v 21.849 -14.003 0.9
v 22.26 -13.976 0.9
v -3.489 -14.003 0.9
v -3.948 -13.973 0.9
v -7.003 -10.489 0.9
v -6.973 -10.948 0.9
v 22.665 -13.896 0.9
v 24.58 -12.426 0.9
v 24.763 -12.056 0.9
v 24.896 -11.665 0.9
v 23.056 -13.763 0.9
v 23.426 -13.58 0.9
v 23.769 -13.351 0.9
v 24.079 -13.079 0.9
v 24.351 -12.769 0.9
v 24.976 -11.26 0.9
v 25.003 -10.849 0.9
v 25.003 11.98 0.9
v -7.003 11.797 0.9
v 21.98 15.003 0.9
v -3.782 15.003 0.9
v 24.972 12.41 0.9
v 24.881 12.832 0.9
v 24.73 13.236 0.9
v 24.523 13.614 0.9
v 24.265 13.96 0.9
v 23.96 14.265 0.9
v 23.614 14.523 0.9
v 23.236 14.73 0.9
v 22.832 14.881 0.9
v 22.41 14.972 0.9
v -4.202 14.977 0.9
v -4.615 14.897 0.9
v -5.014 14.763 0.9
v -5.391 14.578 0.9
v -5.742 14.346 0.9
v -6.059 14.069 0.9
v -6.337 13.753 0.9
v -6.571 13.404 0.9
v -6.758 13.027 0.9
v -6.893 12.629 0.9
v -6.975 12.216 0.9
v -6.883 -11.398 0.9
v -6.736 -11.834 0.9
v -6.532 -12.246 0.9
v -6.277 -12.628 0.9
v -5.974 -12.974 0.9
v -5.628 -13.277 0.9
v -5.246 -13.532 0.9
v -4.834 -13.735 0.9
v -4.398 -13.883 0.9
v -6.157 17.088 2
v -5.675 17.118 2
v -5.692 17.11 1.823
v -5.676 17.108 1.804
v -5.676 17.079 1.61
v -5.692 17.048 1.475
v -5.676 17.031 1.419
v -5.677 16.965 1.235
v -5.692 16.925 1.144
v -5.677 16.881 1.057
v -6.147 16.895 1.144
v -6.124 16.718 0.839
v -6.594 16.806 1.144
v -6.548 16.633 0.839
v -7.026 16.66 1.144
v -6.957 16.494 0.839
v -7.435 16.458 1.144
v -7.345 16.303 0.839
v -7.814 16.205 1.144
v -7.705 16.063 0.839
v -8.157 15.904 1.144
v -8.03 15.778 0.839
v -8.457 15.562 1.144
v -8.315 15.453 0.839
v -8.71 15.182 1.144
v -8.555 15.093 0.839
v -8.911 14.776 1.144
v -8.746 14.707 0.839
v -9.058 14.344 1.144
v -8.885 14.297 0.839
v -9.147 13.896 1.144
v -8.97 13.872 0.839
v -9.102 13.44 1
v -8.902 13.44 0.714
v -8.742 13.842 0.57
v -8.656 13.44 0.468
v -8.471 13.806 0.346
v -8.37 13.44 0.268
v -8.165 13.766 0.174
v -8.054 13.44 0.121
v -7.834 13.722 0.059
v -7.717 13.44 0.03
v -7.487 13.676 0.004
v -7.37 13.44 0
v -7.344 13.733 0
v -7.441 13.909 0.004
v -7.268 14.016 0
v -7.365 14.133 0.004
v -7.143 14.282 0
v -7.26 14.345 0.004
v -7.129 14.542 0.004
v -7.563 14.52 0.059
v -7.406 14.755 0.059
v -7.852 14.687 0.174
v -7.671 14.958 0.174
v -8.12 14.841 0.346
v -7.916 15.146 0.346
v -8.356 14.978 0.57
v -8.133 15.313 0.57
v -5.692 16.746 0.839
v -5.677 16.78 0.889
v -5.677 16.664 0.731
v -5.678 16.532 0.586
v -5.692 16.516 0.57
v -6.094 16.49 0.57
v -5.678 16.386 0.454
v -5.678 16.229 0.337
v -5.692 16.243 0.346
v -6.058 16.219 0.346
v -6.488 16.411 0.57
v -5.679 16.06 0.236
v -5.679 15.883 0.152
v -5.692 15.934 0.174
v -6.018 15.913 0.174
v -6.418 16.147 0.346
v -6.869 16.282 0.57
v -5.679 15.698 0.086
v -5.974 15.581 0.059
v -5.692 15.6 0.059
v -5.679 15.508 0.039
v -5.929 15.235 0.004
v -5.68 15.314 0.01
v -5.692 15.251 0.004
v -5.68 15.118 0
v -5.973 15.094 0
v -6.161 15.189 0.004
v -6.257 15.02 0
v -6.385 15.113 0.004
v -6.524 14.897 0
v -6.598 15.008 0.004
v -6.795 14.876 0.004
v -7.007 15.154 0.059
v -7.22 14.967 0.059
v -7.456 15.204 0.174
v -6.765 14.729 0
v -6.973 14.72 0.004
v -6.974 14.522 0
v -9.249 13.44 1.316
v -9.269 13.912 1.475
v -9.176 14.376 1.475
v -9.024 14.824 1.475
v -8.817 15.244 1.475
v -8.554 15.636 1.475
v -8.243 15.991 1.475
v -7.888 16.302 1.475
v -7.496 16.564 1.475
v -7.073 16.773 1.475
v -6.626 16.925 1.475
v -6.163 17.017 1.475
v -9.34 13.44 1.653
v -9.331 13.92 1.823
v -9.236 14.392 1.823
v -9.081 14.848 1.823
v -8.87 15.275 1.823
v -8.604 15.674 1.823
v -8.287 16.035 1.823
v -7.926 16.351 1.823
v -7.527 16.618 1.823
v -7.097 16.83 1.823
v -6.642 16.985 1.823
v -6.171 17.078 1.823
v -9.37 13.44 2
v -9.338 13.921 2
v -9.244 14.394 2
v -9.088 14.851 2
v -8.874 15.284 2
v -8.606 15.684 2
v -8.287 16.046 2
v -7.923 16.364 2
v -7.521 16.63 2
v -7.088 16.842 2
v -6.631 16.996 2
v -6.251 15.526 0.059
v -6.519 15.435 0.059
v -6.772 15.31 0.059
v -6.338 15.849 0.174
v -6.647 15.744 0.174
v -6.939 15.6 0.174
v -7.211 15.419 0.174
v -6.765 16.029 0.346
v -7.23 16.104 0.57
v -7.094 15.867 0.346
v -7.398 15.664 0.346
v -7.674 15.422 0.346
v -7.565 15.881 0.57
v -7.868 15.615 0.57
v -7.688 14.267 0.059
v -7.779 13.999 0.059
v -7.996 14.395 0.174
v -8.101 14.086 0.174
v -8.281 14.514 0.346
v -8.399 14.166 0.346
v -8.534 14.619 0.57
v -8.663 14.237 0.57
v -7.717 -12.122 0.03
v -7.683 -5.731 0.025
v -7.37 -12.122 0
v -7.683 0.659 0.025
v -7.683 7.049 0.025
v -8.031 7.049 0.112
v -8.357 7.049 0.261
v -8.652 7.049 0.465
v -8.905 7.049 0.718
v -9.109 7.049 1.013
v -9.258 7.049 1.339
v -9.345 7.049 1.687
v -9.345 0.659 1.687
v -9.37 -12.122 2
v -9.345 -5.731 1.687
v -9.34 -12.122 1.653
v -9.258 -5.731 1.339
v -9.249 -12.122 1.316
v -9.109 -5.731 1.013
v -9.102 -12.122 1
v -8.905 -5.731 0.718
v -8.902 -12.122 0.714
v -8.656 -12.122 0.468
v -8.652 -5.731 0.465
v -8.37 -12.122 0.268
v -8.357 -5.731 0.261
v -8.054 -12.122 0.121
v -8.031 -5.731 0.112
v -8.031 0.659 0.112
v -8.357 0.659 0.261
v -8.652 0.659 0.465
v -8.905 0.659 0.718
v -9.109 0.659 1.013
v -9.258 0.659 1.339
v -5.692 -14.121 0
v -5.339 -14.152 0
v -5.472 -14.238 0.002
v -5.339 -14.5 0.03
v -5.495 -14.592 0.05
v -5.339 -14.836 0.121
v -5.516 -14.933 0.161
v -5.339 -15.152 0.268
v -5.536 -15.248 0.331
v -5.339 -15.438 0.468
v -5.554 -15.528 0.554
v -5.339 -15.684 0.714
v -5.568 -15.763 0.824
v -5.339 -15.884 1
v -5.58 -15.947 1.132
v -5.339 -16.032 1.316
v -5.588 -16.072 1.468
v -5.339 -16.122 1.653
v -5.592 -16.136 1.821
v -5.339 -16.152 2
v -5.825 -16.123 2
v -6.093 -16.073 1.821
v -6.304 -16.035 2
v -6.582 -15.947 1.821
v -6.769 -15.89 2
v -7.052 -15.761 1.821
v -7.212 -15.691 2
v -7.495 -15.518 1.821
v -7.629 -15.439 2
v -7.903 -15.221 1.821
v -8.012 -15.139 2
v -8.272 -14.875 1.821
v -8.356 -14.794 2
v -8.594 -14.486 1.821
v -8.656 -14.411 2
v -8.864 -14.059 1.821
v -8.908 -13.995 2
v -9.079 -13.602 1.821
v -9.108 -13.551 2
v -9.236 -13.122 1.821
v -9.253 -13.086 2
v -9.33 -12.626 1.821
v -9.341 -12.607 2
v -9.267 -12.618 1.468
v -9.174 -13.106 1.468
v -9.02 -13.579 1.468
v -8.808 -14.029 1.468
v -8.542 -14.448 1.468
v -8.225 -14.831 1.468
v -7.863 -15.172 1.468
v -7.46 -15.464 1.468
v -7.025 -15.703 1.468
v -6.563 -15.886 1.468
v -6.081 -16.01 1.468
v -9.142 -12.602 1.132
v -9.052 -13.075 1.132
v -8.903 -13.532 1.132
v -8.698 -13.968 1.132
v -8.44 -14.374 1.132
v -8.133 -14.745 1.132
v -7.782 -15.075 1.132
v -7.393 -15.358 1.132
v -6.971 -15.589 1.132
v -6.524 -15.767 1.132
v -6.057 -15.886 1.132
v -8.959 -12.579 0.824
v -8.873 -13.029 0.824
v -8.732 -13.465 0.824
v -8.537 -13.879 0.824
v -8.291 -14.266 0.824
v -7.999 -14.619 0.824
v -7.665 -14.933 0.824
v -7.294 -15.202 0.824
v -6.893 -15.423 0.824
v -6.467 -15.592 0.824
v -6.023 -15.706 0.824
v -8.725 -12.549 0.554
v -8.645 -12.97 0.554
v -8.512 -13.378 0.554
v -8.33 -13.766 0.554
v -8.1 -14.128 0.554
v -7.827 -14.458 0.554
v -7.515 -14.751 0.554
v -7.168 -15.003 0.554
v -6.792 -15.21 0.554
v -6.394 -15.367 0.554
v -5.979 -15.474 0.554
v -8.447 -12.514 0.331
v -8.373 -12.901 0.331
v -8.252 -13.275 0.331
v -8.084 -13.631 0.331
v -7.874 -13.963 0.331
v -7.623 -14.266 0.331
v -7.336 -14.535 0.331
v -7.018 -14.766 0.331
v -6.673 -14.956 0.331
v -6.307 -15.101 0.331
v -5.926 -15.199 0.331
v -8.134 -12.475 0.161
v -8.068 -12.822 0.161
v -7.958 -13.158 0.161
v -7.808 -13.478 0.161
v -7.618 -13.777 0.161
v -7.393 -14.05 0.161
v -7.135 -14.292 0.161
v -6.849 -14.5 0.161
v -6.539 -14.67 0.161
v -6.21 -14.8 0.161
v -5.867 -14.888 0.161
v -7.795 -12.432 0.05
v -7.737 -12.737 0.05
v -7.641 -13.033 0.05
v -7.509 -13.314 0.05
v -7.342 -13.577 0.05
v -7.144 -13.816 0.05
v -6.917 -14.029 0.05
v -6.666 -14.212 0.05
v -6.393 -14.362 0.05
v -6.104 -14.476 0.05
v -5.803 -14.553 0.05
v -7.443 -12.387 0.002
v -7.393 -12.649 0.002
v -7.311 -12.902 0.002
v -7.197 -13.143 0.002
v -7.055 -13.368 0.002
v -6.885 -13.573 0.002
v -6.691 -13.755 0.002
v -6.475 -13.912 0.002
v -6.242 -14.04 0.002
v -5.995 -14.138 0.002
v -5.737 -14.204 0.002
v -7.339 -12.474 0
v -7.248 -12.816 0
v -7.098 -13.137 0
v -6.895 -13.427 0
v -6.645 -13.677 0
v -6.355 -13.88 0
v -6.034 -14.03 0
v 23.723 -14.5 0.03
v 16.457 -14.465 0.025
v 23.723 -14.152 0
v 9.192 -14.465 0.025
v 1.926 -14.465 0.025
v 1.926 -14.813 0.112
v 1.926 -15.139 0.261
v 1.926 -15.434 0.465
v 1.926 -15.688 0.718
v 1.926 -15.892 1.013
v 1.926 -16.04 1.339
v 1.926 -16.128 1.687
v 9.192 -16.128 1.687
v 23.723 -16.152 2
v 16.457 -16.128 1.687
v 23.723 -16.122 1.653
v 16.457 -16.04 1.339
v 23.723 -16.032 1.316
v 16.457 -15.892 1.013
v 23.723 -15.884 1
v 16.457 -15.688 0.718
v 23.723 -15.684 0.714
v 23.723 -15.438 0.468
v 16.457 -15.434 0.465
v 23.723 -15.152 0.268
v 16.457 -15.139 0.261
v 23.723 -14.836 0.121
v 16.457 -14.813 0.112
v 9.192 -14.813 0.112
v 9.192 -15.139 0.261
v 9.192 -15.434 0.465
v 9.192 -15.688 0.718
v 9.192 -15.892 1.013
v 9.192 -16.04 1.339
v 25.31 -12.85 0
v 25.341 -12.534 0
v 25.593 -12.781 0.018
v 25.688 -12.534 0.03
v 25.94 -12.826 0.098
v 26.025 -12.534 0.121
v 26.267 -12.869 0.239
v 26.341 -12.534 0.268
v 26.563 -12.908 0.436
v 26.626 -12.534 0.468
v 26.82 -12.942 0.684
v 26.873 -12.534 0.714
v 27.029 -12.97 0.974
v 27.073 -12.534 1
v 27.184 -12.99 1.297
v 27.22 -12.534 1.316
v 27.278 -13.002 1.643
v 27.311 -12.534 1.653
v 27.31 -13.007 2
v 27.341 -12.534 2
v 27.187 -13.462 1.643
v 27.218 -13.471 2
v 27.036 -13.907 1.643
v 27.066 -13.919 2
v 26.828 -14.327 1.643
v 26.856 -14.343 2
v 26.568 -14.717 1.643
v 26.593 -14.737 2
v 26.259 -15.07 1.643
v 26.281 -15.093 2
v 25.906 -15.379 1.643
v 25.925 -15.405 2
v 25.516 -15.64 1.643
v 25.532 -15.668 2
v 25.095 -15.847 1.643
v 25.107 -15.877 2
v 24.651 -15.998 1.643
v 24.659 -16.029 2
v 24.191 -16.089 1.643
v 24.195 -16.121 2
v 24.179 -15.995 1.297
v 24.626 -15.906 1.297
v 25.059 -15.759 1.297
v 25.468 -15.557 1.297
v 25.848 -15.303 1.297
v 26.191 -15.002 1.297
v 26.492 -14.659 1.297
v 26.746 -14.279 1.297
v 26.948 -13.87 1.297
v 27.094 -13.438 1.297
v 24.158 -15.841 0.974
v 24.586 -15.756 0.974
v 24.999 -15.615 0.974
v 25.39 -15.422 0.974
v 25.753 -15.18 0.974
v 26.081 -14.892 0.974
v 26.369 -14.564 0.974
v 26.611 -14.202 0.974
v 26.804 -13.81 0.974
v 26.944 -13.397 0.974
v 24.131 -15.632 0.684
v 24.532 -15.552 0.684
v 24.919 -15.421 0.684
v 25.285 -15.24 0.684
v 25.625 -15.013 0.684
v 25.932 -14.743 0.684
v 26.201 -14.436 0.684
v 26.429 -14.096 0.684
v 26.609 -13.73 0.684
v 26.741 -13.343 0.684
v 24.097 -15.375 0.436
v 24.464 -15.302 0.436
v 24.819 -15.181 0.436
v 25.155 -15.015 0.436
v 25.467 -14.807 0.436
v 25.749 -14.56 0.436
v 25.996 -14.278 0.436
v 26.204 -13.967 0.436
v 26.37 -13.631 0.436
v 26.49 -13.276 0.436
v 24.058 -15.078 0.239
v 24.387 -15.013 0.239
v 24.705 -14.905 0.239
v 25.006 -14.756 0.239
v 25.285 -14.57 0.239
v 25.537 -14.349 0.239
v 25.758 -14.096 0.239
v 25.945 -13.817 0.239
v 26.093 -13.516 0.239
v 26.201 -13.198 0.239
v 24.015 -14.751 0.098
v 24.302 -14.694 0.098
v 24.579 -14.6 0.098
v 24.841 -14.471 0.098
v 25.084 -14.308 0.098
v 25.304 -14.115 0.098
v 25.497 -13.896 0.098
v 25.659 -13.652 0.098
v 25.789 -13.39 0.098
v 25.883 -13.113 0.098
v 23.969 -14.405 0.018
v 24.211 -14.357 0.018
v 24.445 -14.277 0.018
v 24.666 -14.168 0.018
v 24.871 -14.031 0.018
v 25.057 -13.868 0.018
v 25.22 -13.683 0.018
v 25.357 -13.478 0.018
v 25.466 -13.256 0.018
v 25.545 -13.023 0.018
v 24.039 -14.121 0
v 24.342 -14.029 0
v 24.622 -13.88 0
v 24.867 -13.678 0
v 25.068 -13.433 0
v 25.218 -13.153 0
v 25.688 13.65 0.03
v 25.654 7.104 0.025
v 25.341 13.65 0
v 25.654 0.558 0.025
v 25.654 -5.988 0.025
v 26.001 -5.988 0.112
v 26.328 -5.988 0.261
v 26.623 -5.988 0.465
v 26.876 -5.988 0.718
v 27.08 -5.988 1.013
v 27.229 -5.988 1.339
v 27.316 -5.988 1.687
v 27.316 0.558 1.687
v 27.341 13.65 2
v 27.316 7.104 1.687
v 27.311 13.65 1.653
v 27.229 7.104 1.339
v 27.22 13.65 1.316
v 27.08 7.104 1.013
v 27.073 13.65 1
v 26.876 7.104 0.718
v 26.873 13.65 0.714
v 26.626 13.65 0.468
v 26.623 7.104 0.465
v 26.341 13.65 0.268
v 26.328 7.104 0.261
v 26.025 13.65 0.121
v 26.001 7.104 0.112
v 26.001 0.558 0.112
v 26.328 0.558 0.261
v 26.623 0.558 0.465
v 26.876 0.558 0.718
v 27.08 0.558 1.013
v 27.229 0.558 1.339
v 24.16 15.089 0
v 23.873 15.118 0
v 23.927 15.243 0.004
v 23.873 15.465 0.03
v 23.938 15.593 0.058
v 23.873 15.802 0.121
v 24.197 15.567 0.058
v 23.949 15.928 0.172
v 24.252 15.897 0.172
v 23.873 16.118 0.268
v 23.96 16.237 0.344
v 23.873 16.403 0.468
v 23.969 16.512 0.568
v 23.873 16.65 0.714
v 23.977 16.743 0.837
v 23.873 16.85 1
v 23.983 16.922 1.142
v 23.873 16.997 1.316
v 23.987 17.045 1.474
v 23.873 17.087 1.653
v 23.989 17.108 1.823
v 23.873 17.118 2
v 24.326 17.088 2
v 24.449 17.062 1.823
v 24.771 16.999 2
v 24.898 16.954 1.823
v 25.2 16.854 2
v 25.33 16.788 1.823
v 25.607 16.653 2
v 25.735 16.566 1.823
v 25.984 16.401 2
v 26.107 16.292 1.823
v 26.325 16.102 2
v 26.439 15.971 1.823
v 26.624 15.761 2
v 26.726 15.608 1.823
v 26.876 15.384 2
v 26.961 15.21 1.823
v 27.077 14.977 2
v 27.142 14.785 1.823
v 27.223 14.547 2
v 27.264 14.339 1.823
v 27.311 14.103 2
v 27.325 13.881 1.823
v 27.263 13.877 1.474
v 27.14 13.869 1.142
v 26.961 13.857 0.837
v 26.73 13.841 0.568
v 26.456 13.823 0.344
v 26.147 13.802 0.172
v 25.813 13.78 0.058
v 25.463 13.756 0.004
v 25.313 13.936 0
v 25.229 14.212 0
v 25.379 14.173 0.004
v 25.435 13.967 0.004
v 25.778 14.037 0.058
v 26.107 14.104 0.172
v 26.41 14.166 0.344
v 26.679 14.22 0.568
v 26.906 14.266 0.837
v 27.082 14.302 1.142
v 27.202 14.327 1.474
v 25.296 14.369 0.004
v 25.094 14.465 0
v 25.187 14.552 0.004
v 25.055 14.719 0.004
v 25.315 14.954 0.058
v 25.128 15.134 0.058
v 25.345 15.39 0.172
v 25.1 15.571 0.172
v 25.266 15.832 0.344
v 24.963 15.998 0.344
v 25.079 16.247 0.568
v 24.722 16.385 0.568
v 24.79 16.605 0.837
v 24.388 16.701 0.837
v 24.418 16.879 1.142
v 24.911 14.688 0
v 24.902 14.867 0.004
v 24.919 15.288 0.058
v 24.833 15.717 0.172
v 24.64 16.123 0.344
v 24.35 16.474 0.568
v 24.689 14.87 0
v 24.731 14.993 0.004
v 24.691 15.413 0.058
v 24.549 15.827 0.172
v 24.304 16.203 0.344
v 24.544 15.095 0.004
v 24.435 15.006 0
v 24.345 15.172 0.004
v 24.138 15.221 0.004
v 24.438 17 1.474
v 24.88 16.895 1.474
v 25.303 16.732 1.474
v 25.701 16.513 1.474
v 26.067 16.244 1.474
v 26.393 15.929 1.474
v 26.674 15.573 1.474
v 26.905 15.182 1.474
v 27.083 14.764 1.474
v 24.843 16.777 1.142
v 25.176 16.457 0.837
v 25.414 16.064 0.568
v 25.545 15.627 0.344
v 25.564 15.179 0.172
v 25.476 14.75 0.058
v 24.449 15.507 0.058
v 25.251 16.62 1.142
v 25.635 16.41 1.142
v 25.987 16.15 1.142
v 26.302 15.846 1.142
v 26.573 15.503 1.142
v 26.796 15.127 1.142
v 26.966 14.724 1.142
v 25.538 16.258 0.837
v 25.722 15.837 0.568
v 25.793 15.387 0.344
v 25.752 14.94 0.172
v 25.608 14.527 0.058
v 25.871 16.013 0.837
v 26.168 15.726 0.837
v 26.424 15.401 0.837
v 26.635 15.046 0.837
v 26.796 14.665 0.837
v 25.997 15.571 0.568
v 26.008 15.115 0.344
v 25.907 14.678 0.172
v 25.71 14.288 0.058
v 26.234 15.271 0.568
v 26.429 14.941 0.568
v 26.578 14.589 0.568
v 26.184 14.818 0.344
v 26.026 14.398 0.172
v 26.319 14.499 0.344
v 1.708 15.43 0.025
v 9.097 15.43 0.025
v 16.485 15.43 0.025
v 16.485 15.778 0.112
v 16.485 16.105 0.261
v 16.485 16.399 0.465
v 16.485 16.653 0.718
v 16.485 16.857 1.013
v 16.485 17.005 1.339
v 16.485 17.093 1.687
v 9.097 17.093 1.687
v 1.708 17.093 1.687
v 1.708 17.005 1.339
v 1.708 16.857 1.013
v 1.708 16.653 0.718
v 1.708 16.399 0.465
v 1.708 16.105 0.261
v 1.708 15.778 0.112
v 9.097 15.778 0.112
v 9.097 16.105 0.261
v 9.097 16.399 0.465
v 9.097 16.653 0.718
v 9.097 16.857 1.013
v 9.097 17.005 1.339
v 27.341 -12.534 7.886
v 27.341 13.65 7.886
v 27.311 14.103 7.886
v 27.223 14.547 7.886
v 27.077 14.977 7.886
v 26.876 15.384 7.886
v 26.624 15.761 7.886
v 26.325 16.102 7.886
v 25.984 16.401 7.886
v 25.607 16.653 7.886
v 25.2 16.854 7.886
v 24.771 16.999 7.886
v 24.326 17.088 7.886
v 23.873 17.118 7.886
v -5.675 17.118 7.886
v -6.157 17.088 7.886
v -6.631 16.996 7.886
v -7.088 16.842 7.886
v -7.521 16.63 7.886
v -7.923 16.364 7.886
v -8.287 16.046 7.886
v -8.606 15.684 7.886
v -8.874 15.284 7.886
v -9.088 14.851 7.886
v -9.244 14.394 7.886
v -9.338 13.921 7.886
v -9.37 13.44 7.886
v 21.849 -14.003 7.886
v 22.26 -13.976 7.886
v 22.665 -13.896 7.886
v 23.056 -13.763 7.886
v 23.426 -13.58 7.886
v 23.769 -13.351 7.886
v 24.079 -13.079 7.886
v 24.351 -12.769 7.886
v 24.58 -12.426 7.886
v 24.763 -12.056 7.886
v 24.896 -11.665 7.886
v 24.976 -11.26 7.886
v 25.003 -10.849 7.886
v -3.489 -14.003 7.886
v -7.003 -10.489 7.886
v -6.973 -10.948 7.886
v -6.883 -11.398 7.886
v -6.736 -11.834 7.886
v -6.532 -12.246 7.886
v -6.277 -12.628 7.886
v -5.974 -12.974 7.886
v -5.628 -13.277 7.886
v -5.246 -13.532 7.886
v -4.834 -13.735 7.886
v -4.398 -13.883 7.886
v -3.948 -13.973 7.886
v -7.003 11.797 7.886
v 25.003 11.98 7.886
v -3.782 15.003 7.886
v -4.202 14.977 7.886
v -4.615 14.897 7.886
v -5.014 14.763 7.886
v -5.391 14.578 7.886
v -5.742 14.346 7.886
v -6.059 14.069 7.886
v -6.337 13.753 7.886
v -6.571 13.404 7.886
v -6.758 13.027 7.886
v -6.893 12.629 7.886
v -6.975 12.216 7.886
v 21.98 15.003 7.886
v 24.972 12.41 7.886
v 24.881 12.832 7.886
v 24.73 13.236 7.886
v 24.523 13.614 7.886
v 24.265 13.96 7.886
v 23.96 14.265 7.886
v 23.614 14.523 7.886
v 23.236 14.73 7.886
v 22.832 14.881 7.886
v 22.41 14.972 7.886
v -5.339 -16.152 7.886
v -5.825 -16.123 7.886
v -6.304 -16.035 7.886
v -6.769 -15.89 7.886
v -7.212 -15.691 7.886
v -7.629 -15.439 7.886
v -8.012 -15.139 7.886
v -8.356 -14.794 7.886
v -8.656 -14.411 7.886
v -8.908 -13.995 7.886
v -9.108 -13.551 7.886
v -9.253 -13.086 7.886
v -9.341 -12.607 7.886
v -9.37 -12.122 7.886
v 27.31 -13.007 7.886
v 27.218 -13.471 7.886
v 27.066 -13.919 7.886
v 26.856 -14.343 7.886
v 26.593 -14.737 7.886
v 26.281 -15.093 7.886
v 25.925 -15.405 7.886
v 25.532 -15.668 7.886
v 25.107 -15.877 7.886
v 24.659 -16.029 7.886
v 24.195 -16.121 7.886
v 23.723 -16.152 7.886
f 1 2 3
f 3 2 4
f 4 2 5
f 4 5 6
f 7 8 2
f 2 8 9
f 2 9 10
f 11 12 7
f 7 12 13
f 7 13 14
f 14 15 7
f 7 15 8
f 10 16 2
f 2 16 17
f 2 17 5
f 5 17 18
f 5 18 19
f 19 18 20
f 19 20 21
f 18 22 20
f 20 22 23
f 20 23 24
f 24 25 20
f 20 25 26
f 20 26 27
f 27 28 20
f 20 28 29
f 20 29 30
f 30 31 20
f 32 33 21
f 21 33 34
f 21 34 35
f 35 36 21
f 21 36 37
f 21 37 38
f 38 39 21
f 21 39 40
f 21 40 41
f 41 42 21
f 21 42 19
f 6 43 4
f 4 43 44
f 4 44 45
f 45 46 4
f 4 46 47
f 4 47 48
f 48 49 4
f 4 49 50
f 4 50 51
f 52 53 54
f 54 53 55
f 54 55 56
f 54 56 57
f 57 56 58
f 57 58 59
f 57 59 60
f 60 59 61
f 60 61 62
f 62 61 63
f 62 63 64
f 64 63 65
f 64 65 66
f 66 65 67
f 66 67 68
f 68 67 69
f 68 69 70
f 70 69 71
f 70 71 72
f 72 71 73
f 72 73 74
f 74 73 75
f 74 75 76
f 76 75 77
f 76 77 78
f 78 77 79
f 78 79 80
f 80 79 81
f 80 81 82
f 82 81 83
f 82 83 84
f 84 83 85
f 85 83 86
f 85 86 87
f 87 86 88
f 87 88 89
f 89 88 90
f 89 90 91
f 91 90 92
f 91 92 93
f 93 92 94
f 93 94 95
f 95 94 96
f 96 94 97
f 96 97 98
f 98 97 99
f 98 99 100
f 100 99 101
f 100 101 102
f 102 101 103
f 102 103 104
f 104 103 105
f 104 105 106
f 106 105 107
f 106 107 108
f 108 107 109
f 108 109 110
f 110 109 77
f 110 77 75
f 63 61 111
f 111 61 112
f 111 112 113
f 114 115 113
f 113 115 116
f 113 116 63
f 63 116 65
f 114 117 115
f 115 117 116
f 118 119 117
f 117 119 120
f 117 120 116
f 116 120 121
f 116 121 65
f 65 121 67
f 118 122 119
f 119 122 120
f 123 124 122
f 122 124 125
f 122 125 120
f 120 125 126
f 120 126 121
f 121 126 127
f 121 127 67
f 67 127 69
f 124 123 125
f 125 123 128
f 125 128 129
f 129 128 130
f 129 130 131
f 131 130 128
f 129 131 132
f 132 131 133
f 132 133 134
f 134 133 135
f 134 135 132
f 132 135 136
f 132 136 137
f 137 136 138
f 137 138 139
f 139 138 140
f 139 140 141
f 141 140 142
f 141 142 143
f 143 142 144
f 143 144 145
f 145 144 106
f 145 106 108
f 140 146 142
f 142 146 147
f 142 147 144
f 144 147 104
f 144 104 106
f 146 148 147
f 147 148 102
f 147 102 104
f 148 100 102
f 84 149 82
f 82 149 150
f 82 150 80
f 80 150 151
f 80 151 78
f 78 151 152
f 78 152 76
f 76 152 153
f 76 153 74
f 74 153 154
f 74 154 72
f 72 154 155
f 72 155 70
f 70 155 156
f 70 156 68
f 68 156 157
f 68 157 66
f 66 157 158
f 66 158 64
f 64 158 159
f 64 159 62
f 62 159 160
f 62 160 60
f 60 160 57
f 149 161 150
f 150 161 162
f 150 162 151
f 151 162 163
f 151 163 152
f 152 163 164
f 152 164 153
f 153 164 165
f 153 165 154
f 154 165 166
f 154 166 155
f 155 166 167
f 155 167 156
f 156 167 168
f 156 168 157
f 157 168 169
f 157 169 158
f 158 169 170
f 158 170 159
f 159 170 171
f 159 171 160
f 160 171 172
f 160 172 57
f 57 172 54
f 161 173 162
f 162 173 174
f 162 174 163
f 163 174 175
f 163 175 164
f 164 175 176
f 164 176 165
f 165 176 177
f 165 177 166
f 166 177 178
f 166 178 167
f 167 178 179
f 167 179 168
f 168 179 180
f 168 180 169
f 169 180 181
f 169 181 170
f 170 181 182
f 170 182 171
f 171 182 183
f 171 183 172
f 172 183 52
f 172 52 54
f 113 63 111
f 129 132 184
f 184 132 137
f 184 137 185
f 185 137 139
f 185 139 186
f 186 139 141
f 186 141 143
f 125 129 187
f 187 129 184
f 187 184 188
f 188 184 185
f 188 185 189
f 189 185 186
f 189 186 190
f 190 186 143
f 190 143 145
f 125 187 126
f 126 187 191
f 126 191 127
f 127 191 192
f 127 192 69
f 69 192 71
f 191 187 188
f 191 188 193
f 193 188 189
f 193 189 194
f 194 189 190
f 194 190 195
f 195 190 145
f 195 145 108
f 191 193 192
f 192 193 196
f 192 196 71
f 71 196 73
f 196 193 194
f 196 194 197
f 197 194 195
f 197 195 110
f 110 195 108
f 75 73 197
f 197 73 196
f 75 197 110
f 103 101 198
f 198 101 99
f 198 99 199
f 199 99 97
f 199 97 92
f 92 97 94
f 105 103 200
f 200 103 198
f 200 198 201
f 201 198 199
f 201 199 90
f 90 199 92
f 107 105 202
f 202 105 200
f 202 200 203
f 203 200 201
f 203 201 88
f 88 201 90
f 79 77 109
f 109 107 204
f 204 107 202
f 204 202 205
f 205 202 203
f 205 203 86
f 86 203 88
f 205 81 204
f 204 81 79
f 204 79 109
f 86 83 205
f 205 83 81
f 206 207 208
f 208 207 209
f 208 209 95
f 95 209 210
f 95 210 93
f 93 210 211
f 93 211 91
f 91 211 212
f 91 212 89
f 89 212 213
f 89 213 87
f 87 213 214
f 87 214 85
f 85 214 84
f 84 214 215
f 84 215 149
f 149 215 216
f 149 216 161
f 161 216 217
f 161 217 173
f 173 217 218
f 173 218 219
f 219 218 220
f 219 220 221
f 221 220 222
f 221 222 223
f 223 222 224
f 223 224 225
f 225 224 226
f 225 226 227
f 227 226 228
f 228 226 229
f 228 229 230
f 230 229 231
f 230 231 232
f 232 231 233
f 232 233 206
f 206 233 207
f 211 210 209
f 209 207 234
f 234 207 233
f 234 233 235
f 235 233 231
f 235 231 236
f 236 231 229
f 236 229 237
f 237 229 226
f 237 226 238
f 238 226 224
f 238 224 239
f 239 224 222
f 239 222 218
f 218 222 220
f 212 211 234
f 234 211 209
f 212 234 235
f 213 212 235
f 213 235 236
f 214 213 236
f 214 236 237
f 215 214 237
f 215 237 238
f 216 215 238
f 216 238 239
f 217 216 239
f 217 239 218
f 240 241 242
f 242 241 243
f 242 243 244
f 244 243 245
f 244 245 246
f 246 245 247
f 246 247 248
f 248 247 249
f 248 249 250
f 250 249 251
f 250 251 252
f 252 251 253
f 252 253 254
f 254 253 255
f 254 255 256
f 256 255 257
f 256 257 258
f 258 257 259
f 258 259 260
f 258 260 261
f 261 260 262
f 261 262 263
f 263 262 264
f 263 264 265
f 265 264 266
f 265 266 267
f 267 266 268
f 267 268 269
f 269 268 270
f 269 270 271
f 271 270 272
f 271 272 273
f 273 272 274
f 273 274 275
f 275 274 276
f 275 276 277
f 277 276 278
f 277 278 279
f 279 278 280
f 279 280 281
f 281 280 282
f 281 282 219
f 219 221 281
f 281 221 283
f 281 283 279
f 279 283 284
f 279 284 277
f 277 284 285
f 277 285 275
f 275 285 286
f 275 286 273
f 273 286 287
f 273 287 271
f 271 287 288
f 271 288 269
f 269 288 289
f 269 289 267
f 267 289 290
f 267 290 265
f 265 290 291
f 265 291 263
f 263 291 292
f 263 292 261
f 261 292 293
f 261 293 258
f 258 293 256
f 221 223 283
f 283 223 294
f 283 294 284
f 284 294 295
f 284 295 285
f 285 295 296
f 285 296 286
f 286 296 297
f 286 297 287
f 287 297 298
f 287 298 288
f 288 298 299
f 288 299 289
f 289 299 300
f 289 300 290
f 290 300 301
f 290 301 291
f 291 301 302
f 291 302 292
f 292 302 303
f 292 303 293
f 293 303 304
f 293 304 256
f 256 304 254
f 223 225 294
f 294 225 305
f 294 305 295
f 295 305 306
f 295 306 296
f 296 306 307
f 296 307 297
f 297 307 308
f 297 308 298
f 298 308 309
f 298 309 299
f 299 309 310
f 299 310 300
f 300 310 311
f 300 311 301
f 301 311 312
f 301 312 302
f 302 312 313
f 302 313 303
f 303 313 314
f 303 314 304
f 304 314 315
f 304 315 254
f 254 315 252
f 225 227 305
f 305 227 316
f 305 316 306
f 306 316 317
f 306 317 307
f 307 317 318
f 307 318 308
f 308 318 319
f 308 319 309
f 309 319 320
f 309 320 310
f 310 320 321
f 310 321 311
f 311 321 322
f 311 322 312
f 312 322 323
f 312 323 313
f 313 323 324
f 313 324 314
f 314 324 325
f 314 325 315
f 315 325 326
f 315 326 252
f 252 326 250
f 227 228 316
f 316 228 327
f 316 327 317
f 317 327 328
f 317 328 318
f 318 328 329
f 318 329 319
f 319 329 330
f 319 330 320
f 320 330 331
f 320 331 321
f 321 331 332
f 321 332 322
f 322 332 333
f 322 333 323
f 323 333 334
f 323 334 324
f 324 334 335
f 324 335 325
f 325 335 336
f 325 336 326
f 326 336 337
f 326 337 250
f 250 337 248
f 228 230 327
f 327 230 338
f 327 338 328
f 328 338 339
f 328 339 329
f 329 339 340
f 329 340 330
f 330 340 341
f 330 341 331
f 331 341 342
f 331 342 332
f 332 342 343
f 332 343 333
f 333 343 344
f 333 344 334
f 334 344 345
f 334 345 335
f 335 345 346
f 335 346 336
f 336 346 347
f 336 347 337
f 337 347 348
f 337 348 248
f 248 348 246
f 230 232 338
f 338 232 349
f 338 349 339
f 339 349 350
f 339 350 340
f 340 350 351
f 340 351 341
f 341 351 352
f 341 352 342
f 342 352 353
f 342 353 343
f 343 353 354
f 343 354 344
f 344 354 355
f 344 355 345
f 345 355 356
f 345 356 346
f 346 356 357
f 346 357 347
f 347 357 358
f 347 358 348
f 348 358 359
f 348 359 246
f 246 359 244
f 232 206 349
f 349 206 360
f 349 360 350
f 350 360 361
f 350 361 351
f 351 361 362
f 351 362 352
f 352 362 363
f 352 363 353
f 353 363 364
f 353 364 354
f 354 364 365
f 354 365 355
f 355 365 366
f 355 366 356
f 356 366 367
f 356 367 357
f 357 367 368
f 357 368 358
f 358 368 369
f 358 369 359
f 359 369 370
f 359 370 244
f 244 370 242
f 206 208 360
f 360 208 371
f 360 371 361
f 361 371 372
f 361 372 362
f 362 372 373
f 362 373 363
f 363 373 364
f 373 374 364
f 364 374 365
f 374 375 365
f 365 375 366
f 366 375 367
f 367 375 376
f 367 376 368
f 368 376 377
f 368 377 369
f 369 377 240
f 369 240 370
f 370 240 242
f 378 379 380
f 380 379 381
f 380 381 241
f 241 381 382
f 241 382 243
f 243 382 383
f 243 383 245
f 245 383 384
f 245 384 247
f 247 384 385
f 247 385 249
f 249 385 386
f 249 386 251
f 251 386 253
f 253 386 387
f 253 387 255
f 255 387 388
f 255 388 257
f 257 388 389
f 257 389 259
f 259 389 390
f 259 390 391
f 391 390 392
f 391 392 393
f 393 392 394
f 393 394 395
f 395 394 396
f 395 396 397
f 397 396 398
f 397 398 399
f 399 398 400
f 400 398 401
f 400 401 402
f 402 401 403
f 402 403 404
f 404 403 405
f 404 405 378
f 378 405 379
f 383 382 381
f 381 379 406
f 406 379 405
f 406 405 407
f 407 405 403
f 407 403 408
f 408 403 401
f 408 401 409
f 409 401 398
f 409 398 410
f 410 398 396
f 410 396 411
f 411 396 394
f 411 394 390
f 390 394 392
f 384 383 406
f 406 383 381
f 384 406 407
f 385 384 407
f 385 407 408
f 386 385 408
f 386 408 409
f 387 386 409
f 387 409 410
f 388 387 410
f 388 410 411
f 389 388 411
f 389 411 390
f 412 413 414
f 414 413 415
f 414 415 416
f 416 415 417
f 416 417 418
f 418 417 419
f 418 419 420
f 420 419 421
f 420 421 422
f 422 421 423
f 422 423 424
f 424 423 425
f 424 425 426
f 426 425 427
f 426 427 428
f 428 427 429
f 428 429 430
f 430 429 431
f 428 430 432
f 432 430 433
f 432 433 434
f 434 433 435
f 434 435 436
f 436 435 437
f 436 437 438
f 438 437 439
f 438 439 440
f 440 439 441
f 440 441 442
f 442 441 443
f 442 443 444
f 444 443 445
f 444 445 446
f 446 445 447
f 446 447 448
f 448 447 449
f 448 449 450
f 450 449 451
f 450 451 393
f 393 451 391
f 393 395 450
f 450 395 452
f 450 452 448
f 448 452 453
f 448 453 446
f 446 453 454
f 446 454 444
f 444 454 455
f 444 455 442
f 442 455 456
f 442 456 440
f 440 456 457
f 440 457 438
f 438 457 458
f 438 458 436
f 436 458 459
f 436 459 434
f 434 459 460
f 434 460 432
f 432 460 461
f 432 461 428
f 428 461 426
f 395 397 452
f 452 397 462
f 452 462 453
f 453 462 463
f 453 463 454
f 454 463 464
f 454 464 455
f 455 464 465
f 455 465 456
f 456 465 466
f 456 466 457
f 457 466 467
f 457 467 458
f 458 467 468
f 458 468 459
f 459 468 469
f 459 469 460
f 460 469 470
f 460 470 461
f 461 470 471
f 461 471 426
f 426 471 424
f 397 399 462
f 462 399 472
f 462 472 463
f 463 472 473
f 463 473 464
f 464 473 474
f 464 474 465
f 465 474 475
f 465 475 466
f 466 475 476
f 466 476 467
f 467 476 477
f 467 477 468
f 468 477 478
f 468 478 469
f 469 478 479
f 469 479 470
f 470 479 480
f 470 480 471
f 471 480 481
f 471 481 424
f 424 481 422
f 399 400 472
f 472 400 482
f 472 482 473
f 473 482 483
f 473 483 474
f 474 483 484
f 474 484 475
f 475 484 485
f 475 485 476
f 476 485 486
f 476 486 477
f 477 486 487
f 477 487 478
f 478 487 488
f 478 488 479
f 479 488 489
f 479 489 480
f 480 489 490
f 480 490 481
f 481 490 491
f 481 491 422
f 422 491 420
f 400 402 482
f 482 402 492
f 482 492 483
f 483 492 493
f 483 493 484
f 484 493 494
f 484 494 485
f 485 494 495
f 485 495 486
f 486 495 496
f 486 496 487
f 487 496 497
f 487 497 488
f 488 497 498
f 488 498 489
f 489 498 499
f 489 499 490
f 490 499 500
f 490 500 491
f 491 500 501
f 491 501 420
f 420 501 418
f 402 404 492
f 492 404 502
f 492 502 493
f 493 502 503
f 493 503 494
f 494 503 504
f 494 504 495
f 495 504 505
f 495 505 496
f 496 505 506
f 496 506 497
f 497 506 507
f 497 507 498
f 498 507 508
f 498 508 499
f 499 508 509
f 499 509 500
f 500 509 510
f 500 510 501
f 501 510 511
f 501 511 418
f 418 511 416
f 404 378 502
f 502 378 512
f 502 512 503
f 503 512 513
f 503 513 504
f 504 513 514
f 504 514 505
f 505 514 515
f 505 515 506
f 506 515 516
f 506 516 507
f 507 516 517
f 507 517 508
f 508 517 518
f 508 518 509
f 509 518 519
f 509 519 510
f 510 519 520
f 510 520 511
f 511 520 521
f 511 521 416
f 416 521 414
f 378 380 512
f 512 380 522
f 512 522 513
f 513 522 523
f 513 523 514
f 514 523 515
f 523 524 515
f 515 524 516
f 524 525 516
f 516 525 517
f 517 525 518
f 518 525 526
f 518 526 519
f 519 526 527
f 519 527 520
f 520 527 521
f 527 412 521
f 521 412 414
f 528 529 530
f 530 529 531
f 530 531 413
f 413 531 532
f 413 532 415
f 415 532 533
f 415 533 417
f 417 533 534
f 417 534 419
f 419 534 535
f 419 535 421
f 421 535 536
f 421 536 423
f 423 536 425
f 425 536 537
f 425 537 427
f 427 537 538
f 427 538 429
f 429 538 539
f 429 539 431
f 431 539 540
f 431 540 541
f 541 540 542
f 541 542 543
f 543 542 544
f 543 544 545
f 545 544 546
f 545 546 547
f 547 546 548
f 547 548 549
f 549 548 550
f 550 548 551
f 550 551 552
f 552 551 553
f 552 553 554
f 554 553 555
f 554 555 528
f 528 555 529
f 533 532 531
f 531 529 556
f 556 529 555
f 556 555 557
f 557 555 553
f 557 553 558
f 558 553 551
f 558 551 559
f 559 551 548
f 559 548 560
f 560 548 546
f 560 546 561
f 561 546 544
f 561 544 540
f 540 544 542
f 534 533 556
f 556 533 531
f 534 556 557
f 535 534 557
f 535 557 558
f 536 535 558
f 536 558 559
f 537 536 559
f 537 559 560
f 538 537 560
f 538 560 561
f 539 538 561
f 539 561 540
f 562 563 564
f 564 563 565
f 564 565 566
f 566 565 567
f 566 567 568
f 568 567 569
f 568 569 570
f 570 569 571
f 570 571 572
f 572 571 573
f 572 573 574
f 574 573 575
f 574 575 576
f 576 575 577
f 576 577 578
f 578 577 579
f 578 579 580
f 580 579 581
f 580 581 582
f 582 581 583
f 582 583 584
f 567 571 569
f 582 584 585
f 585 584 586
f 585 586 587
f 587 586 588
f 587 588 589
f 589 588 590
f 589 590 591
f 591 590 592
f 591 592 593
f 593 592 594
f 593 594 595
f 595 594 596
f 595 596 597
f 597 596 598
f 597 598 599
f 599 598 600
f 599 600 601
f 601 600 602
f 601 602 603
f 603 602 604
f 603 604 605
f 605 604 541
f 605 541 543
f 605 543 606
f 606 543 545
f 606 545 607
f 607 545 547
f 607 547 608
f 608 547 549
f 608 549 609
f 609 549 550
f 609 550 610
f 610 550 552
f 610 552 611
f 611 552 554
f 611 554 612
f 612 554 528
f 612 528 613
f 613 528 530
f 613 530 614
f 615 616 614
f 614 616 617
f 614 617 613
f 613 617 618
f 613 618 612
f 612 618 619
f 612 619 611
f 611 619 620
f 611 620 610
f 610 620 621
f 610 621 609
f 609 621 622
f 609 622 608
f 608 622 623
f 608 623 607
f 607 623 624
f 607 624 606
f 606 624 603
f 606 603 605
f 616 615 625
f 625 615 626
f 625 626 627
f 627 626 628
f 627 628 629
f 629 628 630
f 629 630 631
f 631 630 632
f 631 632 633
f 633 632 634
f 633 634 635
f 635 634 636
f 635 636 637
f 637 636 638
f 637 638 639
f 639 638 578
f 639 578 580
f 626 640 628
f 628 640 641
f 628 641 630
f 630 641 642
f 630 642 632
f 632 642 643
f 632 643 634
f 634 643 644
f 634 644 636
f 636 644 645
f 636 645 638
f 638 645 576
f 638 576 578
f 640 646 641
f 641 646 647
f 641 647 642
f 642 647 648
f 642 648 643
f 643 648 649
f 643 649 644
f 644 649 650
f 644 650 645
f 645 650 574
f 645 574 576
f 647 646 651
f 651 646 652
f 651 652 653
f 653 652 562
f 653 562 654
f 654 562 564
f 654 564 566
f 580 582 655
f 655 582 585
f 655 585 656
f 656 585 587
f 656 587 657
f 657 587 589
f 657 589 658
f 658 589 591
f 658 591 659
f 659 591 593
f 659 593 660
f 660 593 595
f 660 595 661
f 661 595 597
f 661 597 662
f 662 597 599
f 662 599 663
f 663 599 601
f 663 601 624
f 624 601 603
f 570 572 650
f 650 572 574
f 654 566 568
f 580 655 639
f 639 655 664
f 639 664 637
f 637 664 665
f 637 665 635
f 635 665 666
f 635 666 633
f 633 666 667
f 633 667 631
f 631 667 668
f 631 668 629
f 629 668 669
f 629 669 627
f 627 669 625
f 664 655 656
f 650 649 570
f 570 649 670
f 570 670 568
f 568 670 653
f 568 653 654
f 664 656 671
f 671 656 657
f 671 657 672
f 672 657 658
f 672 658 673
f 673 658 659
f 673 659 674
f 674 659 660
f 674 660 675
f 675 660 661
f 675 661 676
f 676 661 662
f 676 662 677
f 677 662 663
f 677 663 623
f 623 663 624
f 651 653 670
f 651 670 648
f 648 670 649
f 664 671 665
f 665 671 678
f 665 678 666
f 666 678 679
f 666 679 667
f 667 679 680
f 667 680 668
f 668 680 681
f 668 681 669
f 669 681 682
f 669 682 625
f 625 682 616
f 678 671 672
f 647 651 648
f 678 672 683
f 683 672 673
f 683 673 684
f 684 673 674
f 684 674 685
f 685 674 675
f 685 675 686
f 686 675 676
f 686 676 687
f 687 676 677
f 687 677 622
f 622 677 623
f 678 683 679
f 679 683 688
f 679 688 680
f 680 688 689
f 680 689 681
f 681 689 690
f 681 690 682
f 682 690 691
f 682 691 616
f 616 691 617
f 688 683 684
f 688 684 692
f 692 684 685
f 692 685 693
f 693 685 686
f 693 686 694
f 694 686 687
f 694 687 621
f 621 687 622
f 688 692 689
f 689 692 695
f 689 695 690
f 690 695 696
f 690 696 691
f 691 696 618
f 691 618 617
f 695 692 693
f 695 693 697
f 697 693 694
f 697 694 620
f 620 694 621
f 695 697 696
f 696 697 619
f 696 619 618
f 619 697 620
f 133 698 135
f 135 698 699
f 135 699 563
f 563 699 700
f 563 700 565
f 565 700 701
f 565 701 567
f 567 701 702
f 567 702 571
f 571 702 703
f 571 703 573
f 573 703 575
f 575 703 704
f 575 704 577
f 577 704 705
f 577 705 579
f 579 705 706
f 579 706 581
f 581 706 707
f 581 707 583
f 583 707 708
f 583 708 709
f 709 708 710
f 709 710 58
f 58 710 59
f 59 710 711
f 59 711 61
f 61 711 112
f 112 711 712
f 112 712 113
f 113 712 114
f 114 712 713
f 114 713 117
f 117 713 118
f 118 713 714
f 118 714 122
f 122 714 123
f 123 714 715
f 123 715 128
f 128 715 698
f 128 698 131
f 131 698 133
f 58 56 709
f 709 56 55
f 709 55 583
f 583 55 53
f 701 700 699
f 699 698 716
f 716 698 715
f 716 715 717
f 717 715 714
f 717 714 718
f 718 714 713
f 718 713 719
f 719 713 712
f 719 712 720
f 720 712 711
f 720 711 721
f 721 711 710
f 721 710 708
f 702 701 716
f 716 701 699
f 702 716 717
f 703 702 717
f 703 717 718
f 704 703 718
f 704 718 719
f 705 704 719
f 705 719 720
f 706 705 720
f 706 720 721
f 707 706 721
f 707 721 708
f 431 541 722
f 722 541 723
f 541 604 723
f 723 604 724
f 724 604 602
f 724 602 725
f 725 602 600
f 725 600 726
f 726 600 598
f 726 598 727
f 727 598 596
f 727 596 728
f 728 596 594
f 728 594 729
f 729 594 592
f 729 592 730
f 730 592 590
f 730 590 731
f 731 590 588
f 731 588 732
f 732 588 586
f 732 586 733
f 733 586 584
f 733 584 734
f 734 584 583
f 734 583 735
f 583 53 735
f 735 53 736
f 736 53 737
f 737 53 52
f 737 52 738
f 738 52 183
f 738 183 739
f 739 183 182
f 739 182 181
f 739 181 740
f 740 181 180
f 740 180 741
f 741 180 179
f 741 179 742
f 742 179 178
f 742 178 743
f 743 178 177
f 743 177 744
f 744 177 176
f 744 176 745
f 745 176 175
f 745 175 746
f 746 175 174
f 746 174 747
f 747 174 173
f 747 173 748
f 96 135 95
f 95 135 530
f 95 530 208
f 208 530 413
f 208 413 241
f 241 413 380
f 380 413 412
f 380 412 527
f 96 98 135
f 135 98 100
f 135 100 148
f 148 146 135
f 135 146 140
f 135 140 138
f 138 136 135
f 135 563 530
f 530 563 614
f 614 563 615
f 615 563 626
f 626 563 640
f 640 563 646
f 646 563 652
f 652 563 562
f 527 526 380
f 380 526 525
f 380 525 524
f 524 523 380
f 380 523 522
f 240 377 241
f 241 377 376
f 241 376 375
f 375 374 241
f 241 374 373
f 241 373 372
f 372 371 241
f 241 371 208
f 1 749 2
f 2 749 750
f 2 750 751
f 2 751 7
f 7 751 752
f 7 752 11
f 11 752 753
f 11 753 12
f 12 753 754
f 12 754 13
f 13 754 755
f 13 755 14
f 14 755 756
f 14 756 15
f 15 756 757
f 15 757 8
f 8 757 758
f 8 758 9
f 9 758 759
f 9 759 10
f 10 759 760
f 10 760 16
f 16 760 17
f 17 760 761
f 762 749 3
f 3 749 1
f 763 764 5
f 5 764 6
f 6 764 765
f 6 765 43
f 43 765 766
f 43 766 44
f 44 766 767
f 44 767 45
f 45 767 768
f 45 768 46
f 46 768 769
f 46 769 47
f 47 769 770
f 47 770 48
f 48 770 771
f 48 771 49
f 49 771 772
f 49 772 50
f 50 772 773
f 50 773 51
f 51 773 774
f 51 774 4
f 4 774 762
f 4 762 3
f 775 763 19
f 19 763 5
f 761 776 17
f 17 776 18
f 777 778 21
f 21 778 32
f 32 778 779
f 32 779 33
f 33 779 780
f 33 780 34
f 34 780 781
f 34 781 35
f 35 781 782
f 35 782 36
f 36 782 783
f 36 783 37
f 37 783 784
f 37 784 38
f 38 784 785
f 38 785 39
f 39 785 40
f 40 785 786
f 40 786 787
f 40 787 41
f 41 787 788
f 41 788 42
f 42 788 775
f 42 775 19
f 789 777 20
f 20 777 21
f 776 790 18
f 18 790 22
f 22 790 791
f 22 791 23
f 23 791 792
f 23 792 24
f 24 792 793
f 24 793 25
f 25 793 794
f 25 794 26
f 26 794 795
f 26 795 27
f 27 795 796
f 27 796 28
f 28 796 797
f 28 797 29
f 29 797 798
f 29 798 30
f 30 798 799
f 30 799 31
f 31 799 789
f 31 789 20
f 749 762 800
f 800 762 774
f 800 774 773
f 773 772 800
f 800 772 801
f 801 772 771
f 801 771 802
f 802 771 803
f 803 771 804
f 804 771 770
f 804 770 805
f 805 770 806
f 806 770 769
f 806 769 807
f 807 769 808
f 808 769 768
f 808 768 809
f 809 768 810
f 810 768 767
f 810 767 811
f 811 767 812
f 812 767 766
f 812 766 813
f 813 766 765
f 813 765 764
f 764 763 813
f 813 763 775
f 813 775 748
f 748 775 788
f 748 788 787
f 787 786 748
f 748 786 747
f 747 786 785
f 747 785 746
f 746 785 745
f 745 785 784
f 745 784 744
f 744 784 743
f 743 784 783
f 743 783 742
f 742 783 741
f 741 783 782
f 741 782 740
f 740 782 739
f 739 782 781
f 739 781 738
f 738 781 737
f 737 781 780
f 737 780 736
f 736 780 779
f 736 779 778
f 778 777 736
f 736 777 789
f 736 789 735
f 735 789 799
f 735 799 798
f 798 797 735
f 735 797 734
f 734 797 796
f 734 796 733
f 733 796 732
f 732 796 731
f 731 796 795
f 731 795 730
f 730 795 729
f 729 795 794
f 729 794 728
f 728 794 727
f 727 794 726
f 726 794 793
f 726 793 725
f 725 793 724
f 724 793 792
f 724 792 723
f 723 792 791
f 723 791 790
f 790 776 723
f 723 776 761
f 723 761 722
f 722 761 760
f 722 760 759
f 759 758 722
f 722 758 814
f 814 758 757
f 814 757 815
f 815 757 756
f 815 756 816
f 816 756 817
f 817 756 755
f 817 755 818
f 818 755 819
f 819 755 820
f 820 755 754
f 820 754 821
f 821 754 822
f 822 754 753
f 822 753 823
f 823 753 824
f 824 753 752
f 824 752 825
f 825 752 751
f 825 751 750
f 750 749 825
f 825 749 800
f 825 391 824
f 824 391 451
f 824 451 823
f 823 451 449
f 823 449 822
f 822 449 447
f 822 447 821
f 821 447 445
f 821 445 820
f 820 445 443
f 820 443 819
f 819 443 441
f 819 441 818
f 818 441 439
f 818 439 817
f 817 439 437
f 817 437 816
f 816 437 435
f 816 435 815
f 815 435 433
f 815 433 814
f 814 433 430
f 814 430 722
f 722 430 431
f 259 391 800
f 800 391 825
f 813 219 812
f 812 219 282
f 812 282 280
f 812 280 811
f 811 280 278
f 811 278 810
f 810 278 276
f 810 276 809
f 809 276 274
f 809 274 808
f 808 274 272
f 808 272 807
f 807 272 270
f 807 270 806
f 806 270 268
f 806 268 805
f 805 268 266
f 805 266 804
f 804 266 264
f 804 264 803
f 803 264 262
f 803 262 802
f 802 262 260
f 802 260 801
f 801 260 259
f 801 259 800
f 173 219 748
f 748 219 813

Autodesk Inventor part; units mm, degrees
ref_plane "YZ Plane" through (0, 0, 0) normal (1, 0, 0) x (0, 1, 0)
ref_plane "XZ Plane" through (0, 0, 0) normal (0, 1, 0) x (-1, 0, 0)
sketch "Sketch1" plane through (-3.508, -14.003, 0) normal (0, 0, 1) x (1, 0, 0)
  line L0 (-3.495, 25.7995) -> (-3.495, 3.5141)
  line L1 (28.511, 26.087) -> (28.511, 3.1543)
  line L2 (0.0191, 0) -> (25.3567, 0)
  line L3 (25.4878, 29.006) -> (-0.274, 29.006)
  arc A0 (-3.495, 3.5141) -> (0.0191, 0) centre (0.0191, 3.5141) ccw
  arc A1 (25.3567, 0) -> (28.511, 3.1543) centre (25.3567, 3.1543) ccw
  arc A2 (28.511, 25.9828) -> (25.4878, 29.006) centre (25.4878, 25.9827) ccw
  arc A3 (-0.274, 29.006) -> (-3.495, 25.7995) centre (-0.2885, 25.7995) ccw
  line L4 (9.8544, 29.006) -> (9.8544, 34.006) construction
  point P0 (12.6069, 14.6206)
  dimension "d0" = 5
sketch "Sketch3" plane through (0, 0, 0) normal (0, 0, 1) x (1, 0, 0)
  arc A0 (-5.6755, 17.1176) -> (-9.37, 13.4398) centre (-5.6922, 13.4398) ccw
  line L0 (-9.37, 13.4398) -> (-9.37, -12.1215)
  arc A1 (-9.37, -12.1215) -> (-5.3393, -16.1522) centre (-5.3393, -12.1215) ccw
  line L1 (-5.3393, -16.1522) -> (23.723, -16.1522)
  arc A2 (23.723, -16.1522) -> (27.3409, -12.5343) centre (23.723, -12.5343) ccw
  line L2 (27.3409, 13.7696) -> (27.3409, -12.5343)
  arc A3 (27.3409, 13.65) -> (23.8733, 17.1176) centre (23.8733, 13.65) ccw
  line L3 (23.8733, 17.1176) -> (-5.6755, 17.1176)
  point P0 (0, 0)
  point P1 (25.003, 11.9798)
  point P2 (9.0989, 0.6176)
extrude "Extrusion1" add sketch "Sketch3" along normal blind 7.886
shell "Shell1" thickness 2.5 removed faces 1 at (4.2862, 6.0277, 7.886)
ref_plane "Work Plane3" through (-5.6827, 14.6176, 2.5) normal (0, 0, 1) x (1, 0, 0)
sketch "Sketch4" plane through (-5.6827, 14.6176, 2.5) normal (0, 0, 1) x (1, 0, 0)
  point P0 (5.6827, -14.6176)
extrude "Extrusion2" cut sketch "Sketch1" along normal blind 21
sketch "Sketch5" plane through (-5.6827, 14.6176, 2.5) normal (0, 0, 1) x (1, 0, 0)
  arc A0 (0.3621, 0) -> (-1.1873, -1.9071) centre (1.8862, -2.8211) ccw projected
  line L0 (0.3621, 0) -> (0, 0) projected
  arc A1 (0, 0) -> (-1.1873, -1.1778) centre (-0.0094, -1.1778) ccw projected
  line L1 (-1.1873, -1.1778) -> (-1.1873, -1.9071) projected
  arc A2 (-1.1873, -26.0642) -> (0.6634, -28.2698) centre (2.1939, -25.1065) ccw projected
  line L2 (-1.1873, -26.0642) -> (-1.1873, -26.7391) projected
  arc A3 (-1.1873, -26.7391) -> (0.3435, -28.2698) centre (0.3435, -26.7391) ccw projected
  line L3 (0.3435, -28.2698) -> (0.6634, -28.2698) projected
  arc A4 (28.9771, -28.2698) -> (30.5236, -26.4645) centre (27.5315, -25.4663) ccw projected
  line L4 (28.9771, -28.2698) -> (29.4057, -28.2698) projected
  arc A5 (29.4057, -28.2698) -> (30.5236, -27.1519) centre (29.4057, -27.1519) ccw projected
  line L5 (30.5236, -27.1519) -> (30.5236, -26.4645) projected
  arc A6 (30.5236, -1.6612) -> (29.1395, 0) centre (27.6625, -2.6379) ccw projected
  line L6 (30.5236, -1.6612) -> (30.5236, -0.9676) projected
  arc A7 (30.5236, -0.9676) -> (29.556, 0) centre (29.556, -0.9676) ccw projected
  line L7 (29.556, 0) -> (29.1395, 0) projected
  point P0 (5.6827, -14.6176)
extrude "Extrusion3" add sketch "Sketch5" along normal up to surface (5.386 mm away)
sketch "Sketch6" plane through (-5.6827, 14.6176, 2.5) normal (0, 0, 1) x (1, 0, 0)
  arc A0 (27.5315, -28.6206) -> (30.6857, -25.4663) centre (27.5315, -25.4663) ccw projected
  line L0 (2.1939, -28.6206) -> (27.5315, -28.6206) projected
  arc A1 (-1.3203, -25.1065) -> (2.1939, -28.6206) centre (2.1939, -25.1065) ccw projected
  line L1 (-1.3203, -2.8211) -> (-1.3203, -25.1065) projected
  arc A2 (1.9007, 0.3854) -> (-1.3203, -2.8211) centre (1.8862, -2.8211) ccw projected
  line L2 (27.6625, 0.3854) -> (1.9007, 0.3854) projected
  arc A3 (30.6857, -2.6378) -> (27.6625, 0.3854) centre (27.6625, -2.6379) ccw projected
  line L3 (30.6857, -25.4663) -> (30.6857, -2.6378) projected
  point P0 (5.6827, -14.6176)
extrude "Extrusion4" add sketch "Sketch6" against normal up to surface (2.5 mm away)
sketch "Sketch7" plane through (-5.6827, 14.6176, 2.5) normal (0, 0, 1) x (1, 0, 0)
  arc A0 (27.5315, -28.6206) -> (30.6857, -25.4663) centre (27.5315, -25.4663) ccw projected
  line L0 (30.6857, -2.6378) -> (30.6857, -25.4663) projected
  arc A1 (30.6857, -2.6378) -> (27.6625, 0.3854) centre (27.6625, -2.6379) ccw projected
  line L1 (1.9007, 0.3854) -> (27.6625, 0.3854) projected
  arc A2 (1.9007, 0.3854) -> (-1.3203, -2.8211) centre (1.8862, -2.8211) ccw projected
  line L2 (-1.3203, -25.1065) -> (-1.3203, -2.8211) projected
  arc A3 (-1.3203, -25.1065) -> (2.1939, -28.6206) centre (2.1939, -25.1065) ccw projected
  line L3 (27.5315, -28.6206) -> (2.1939, -28.6206) projected
  arc A4 (1.8968, -1.1146) -> (0.1797, -2.8211) centre (1.8862, -2.8211) ccw
  line L4 (1.8968, -1.1146) -> (27.6625, -1.1146)
  arc A5 (29.1857, -2.6379) -> (27.6625, -1.1146) centre (27.6625, -2.6379) ccw
  line L5 (29.1857, -2.6379) -> (29.1857, -25.4663)
  arc A6 (27.5315, -27.1206) -> (29.1857, -25.4663) centre (27.5315, -25.4663) ccw
  line L6 (27.5315, -27.1206) -> (2.1939, -27.1206)
  arc A7 (0.1797, -25.1065) -> (2.1939, -27.1206) centre (2.1939, -25.1065) ccw
  line L7 (0.1797, -25.1065) -> (0.1797, -2.8211)
  point P0 (5.6827, -14.6176)
  dimension "d11" = 1.5
extrude "Extrusion5" [suppressed]
fillet "Fillet1" radius 2 8 edges at (26.3252, 16.102, 0) (27.3409, 0.5579, 0) (26.2812, -15.0926, 0) (9.1919, -16.1522, 0) (-8.1894, -14.9717, 0) (-9.37, 0.6592, 0) (-8.2869, 16.0463, 0) (9.0989, 17.1176, 0)
sketch "Sketch9" plane through (-5.6827, 14.6176, 2.5) normal (0, 0, 1) x (1, 0, 0)
  arc A0 (27.5315, -28.6206) -> (30.6857, -25.4663) centre (27.5315, -25.4663) ccw projected
  line L0 (30.6857, -2.6378) -> (30.6857, -25.4663) projected
  arc A1 (30.6857, -2.6378) -> (27.6625, 0.3854) centre (27.6625, -2.6379) ccw projected
  line L1 (1.9007, 0.3854) -> (27.6625, 0.3854) projected
  arc A2 (1.9007, 0.3854) -> (-1.3203, -2.8211) centre (1.8862, -2.8211) ccw projected
  line L2 (-1.3203, -25.1065) -> (-1.3203, -2.8211) projected
  arc A3 (-1.3203, -25.1065) -> (2.1939, -28.6206) centre (2.1939, -25.1065) ccw projected
  line L3 (27.5315, -28.6206) -> (2.1939, -28.6206) projected
  point P0 (5.6827, -14.6176)
extrude "Extrusion7" cut sketch "Sketch9" against normal blind 1.6
properties part number "GoPro_Cap_Lens"
